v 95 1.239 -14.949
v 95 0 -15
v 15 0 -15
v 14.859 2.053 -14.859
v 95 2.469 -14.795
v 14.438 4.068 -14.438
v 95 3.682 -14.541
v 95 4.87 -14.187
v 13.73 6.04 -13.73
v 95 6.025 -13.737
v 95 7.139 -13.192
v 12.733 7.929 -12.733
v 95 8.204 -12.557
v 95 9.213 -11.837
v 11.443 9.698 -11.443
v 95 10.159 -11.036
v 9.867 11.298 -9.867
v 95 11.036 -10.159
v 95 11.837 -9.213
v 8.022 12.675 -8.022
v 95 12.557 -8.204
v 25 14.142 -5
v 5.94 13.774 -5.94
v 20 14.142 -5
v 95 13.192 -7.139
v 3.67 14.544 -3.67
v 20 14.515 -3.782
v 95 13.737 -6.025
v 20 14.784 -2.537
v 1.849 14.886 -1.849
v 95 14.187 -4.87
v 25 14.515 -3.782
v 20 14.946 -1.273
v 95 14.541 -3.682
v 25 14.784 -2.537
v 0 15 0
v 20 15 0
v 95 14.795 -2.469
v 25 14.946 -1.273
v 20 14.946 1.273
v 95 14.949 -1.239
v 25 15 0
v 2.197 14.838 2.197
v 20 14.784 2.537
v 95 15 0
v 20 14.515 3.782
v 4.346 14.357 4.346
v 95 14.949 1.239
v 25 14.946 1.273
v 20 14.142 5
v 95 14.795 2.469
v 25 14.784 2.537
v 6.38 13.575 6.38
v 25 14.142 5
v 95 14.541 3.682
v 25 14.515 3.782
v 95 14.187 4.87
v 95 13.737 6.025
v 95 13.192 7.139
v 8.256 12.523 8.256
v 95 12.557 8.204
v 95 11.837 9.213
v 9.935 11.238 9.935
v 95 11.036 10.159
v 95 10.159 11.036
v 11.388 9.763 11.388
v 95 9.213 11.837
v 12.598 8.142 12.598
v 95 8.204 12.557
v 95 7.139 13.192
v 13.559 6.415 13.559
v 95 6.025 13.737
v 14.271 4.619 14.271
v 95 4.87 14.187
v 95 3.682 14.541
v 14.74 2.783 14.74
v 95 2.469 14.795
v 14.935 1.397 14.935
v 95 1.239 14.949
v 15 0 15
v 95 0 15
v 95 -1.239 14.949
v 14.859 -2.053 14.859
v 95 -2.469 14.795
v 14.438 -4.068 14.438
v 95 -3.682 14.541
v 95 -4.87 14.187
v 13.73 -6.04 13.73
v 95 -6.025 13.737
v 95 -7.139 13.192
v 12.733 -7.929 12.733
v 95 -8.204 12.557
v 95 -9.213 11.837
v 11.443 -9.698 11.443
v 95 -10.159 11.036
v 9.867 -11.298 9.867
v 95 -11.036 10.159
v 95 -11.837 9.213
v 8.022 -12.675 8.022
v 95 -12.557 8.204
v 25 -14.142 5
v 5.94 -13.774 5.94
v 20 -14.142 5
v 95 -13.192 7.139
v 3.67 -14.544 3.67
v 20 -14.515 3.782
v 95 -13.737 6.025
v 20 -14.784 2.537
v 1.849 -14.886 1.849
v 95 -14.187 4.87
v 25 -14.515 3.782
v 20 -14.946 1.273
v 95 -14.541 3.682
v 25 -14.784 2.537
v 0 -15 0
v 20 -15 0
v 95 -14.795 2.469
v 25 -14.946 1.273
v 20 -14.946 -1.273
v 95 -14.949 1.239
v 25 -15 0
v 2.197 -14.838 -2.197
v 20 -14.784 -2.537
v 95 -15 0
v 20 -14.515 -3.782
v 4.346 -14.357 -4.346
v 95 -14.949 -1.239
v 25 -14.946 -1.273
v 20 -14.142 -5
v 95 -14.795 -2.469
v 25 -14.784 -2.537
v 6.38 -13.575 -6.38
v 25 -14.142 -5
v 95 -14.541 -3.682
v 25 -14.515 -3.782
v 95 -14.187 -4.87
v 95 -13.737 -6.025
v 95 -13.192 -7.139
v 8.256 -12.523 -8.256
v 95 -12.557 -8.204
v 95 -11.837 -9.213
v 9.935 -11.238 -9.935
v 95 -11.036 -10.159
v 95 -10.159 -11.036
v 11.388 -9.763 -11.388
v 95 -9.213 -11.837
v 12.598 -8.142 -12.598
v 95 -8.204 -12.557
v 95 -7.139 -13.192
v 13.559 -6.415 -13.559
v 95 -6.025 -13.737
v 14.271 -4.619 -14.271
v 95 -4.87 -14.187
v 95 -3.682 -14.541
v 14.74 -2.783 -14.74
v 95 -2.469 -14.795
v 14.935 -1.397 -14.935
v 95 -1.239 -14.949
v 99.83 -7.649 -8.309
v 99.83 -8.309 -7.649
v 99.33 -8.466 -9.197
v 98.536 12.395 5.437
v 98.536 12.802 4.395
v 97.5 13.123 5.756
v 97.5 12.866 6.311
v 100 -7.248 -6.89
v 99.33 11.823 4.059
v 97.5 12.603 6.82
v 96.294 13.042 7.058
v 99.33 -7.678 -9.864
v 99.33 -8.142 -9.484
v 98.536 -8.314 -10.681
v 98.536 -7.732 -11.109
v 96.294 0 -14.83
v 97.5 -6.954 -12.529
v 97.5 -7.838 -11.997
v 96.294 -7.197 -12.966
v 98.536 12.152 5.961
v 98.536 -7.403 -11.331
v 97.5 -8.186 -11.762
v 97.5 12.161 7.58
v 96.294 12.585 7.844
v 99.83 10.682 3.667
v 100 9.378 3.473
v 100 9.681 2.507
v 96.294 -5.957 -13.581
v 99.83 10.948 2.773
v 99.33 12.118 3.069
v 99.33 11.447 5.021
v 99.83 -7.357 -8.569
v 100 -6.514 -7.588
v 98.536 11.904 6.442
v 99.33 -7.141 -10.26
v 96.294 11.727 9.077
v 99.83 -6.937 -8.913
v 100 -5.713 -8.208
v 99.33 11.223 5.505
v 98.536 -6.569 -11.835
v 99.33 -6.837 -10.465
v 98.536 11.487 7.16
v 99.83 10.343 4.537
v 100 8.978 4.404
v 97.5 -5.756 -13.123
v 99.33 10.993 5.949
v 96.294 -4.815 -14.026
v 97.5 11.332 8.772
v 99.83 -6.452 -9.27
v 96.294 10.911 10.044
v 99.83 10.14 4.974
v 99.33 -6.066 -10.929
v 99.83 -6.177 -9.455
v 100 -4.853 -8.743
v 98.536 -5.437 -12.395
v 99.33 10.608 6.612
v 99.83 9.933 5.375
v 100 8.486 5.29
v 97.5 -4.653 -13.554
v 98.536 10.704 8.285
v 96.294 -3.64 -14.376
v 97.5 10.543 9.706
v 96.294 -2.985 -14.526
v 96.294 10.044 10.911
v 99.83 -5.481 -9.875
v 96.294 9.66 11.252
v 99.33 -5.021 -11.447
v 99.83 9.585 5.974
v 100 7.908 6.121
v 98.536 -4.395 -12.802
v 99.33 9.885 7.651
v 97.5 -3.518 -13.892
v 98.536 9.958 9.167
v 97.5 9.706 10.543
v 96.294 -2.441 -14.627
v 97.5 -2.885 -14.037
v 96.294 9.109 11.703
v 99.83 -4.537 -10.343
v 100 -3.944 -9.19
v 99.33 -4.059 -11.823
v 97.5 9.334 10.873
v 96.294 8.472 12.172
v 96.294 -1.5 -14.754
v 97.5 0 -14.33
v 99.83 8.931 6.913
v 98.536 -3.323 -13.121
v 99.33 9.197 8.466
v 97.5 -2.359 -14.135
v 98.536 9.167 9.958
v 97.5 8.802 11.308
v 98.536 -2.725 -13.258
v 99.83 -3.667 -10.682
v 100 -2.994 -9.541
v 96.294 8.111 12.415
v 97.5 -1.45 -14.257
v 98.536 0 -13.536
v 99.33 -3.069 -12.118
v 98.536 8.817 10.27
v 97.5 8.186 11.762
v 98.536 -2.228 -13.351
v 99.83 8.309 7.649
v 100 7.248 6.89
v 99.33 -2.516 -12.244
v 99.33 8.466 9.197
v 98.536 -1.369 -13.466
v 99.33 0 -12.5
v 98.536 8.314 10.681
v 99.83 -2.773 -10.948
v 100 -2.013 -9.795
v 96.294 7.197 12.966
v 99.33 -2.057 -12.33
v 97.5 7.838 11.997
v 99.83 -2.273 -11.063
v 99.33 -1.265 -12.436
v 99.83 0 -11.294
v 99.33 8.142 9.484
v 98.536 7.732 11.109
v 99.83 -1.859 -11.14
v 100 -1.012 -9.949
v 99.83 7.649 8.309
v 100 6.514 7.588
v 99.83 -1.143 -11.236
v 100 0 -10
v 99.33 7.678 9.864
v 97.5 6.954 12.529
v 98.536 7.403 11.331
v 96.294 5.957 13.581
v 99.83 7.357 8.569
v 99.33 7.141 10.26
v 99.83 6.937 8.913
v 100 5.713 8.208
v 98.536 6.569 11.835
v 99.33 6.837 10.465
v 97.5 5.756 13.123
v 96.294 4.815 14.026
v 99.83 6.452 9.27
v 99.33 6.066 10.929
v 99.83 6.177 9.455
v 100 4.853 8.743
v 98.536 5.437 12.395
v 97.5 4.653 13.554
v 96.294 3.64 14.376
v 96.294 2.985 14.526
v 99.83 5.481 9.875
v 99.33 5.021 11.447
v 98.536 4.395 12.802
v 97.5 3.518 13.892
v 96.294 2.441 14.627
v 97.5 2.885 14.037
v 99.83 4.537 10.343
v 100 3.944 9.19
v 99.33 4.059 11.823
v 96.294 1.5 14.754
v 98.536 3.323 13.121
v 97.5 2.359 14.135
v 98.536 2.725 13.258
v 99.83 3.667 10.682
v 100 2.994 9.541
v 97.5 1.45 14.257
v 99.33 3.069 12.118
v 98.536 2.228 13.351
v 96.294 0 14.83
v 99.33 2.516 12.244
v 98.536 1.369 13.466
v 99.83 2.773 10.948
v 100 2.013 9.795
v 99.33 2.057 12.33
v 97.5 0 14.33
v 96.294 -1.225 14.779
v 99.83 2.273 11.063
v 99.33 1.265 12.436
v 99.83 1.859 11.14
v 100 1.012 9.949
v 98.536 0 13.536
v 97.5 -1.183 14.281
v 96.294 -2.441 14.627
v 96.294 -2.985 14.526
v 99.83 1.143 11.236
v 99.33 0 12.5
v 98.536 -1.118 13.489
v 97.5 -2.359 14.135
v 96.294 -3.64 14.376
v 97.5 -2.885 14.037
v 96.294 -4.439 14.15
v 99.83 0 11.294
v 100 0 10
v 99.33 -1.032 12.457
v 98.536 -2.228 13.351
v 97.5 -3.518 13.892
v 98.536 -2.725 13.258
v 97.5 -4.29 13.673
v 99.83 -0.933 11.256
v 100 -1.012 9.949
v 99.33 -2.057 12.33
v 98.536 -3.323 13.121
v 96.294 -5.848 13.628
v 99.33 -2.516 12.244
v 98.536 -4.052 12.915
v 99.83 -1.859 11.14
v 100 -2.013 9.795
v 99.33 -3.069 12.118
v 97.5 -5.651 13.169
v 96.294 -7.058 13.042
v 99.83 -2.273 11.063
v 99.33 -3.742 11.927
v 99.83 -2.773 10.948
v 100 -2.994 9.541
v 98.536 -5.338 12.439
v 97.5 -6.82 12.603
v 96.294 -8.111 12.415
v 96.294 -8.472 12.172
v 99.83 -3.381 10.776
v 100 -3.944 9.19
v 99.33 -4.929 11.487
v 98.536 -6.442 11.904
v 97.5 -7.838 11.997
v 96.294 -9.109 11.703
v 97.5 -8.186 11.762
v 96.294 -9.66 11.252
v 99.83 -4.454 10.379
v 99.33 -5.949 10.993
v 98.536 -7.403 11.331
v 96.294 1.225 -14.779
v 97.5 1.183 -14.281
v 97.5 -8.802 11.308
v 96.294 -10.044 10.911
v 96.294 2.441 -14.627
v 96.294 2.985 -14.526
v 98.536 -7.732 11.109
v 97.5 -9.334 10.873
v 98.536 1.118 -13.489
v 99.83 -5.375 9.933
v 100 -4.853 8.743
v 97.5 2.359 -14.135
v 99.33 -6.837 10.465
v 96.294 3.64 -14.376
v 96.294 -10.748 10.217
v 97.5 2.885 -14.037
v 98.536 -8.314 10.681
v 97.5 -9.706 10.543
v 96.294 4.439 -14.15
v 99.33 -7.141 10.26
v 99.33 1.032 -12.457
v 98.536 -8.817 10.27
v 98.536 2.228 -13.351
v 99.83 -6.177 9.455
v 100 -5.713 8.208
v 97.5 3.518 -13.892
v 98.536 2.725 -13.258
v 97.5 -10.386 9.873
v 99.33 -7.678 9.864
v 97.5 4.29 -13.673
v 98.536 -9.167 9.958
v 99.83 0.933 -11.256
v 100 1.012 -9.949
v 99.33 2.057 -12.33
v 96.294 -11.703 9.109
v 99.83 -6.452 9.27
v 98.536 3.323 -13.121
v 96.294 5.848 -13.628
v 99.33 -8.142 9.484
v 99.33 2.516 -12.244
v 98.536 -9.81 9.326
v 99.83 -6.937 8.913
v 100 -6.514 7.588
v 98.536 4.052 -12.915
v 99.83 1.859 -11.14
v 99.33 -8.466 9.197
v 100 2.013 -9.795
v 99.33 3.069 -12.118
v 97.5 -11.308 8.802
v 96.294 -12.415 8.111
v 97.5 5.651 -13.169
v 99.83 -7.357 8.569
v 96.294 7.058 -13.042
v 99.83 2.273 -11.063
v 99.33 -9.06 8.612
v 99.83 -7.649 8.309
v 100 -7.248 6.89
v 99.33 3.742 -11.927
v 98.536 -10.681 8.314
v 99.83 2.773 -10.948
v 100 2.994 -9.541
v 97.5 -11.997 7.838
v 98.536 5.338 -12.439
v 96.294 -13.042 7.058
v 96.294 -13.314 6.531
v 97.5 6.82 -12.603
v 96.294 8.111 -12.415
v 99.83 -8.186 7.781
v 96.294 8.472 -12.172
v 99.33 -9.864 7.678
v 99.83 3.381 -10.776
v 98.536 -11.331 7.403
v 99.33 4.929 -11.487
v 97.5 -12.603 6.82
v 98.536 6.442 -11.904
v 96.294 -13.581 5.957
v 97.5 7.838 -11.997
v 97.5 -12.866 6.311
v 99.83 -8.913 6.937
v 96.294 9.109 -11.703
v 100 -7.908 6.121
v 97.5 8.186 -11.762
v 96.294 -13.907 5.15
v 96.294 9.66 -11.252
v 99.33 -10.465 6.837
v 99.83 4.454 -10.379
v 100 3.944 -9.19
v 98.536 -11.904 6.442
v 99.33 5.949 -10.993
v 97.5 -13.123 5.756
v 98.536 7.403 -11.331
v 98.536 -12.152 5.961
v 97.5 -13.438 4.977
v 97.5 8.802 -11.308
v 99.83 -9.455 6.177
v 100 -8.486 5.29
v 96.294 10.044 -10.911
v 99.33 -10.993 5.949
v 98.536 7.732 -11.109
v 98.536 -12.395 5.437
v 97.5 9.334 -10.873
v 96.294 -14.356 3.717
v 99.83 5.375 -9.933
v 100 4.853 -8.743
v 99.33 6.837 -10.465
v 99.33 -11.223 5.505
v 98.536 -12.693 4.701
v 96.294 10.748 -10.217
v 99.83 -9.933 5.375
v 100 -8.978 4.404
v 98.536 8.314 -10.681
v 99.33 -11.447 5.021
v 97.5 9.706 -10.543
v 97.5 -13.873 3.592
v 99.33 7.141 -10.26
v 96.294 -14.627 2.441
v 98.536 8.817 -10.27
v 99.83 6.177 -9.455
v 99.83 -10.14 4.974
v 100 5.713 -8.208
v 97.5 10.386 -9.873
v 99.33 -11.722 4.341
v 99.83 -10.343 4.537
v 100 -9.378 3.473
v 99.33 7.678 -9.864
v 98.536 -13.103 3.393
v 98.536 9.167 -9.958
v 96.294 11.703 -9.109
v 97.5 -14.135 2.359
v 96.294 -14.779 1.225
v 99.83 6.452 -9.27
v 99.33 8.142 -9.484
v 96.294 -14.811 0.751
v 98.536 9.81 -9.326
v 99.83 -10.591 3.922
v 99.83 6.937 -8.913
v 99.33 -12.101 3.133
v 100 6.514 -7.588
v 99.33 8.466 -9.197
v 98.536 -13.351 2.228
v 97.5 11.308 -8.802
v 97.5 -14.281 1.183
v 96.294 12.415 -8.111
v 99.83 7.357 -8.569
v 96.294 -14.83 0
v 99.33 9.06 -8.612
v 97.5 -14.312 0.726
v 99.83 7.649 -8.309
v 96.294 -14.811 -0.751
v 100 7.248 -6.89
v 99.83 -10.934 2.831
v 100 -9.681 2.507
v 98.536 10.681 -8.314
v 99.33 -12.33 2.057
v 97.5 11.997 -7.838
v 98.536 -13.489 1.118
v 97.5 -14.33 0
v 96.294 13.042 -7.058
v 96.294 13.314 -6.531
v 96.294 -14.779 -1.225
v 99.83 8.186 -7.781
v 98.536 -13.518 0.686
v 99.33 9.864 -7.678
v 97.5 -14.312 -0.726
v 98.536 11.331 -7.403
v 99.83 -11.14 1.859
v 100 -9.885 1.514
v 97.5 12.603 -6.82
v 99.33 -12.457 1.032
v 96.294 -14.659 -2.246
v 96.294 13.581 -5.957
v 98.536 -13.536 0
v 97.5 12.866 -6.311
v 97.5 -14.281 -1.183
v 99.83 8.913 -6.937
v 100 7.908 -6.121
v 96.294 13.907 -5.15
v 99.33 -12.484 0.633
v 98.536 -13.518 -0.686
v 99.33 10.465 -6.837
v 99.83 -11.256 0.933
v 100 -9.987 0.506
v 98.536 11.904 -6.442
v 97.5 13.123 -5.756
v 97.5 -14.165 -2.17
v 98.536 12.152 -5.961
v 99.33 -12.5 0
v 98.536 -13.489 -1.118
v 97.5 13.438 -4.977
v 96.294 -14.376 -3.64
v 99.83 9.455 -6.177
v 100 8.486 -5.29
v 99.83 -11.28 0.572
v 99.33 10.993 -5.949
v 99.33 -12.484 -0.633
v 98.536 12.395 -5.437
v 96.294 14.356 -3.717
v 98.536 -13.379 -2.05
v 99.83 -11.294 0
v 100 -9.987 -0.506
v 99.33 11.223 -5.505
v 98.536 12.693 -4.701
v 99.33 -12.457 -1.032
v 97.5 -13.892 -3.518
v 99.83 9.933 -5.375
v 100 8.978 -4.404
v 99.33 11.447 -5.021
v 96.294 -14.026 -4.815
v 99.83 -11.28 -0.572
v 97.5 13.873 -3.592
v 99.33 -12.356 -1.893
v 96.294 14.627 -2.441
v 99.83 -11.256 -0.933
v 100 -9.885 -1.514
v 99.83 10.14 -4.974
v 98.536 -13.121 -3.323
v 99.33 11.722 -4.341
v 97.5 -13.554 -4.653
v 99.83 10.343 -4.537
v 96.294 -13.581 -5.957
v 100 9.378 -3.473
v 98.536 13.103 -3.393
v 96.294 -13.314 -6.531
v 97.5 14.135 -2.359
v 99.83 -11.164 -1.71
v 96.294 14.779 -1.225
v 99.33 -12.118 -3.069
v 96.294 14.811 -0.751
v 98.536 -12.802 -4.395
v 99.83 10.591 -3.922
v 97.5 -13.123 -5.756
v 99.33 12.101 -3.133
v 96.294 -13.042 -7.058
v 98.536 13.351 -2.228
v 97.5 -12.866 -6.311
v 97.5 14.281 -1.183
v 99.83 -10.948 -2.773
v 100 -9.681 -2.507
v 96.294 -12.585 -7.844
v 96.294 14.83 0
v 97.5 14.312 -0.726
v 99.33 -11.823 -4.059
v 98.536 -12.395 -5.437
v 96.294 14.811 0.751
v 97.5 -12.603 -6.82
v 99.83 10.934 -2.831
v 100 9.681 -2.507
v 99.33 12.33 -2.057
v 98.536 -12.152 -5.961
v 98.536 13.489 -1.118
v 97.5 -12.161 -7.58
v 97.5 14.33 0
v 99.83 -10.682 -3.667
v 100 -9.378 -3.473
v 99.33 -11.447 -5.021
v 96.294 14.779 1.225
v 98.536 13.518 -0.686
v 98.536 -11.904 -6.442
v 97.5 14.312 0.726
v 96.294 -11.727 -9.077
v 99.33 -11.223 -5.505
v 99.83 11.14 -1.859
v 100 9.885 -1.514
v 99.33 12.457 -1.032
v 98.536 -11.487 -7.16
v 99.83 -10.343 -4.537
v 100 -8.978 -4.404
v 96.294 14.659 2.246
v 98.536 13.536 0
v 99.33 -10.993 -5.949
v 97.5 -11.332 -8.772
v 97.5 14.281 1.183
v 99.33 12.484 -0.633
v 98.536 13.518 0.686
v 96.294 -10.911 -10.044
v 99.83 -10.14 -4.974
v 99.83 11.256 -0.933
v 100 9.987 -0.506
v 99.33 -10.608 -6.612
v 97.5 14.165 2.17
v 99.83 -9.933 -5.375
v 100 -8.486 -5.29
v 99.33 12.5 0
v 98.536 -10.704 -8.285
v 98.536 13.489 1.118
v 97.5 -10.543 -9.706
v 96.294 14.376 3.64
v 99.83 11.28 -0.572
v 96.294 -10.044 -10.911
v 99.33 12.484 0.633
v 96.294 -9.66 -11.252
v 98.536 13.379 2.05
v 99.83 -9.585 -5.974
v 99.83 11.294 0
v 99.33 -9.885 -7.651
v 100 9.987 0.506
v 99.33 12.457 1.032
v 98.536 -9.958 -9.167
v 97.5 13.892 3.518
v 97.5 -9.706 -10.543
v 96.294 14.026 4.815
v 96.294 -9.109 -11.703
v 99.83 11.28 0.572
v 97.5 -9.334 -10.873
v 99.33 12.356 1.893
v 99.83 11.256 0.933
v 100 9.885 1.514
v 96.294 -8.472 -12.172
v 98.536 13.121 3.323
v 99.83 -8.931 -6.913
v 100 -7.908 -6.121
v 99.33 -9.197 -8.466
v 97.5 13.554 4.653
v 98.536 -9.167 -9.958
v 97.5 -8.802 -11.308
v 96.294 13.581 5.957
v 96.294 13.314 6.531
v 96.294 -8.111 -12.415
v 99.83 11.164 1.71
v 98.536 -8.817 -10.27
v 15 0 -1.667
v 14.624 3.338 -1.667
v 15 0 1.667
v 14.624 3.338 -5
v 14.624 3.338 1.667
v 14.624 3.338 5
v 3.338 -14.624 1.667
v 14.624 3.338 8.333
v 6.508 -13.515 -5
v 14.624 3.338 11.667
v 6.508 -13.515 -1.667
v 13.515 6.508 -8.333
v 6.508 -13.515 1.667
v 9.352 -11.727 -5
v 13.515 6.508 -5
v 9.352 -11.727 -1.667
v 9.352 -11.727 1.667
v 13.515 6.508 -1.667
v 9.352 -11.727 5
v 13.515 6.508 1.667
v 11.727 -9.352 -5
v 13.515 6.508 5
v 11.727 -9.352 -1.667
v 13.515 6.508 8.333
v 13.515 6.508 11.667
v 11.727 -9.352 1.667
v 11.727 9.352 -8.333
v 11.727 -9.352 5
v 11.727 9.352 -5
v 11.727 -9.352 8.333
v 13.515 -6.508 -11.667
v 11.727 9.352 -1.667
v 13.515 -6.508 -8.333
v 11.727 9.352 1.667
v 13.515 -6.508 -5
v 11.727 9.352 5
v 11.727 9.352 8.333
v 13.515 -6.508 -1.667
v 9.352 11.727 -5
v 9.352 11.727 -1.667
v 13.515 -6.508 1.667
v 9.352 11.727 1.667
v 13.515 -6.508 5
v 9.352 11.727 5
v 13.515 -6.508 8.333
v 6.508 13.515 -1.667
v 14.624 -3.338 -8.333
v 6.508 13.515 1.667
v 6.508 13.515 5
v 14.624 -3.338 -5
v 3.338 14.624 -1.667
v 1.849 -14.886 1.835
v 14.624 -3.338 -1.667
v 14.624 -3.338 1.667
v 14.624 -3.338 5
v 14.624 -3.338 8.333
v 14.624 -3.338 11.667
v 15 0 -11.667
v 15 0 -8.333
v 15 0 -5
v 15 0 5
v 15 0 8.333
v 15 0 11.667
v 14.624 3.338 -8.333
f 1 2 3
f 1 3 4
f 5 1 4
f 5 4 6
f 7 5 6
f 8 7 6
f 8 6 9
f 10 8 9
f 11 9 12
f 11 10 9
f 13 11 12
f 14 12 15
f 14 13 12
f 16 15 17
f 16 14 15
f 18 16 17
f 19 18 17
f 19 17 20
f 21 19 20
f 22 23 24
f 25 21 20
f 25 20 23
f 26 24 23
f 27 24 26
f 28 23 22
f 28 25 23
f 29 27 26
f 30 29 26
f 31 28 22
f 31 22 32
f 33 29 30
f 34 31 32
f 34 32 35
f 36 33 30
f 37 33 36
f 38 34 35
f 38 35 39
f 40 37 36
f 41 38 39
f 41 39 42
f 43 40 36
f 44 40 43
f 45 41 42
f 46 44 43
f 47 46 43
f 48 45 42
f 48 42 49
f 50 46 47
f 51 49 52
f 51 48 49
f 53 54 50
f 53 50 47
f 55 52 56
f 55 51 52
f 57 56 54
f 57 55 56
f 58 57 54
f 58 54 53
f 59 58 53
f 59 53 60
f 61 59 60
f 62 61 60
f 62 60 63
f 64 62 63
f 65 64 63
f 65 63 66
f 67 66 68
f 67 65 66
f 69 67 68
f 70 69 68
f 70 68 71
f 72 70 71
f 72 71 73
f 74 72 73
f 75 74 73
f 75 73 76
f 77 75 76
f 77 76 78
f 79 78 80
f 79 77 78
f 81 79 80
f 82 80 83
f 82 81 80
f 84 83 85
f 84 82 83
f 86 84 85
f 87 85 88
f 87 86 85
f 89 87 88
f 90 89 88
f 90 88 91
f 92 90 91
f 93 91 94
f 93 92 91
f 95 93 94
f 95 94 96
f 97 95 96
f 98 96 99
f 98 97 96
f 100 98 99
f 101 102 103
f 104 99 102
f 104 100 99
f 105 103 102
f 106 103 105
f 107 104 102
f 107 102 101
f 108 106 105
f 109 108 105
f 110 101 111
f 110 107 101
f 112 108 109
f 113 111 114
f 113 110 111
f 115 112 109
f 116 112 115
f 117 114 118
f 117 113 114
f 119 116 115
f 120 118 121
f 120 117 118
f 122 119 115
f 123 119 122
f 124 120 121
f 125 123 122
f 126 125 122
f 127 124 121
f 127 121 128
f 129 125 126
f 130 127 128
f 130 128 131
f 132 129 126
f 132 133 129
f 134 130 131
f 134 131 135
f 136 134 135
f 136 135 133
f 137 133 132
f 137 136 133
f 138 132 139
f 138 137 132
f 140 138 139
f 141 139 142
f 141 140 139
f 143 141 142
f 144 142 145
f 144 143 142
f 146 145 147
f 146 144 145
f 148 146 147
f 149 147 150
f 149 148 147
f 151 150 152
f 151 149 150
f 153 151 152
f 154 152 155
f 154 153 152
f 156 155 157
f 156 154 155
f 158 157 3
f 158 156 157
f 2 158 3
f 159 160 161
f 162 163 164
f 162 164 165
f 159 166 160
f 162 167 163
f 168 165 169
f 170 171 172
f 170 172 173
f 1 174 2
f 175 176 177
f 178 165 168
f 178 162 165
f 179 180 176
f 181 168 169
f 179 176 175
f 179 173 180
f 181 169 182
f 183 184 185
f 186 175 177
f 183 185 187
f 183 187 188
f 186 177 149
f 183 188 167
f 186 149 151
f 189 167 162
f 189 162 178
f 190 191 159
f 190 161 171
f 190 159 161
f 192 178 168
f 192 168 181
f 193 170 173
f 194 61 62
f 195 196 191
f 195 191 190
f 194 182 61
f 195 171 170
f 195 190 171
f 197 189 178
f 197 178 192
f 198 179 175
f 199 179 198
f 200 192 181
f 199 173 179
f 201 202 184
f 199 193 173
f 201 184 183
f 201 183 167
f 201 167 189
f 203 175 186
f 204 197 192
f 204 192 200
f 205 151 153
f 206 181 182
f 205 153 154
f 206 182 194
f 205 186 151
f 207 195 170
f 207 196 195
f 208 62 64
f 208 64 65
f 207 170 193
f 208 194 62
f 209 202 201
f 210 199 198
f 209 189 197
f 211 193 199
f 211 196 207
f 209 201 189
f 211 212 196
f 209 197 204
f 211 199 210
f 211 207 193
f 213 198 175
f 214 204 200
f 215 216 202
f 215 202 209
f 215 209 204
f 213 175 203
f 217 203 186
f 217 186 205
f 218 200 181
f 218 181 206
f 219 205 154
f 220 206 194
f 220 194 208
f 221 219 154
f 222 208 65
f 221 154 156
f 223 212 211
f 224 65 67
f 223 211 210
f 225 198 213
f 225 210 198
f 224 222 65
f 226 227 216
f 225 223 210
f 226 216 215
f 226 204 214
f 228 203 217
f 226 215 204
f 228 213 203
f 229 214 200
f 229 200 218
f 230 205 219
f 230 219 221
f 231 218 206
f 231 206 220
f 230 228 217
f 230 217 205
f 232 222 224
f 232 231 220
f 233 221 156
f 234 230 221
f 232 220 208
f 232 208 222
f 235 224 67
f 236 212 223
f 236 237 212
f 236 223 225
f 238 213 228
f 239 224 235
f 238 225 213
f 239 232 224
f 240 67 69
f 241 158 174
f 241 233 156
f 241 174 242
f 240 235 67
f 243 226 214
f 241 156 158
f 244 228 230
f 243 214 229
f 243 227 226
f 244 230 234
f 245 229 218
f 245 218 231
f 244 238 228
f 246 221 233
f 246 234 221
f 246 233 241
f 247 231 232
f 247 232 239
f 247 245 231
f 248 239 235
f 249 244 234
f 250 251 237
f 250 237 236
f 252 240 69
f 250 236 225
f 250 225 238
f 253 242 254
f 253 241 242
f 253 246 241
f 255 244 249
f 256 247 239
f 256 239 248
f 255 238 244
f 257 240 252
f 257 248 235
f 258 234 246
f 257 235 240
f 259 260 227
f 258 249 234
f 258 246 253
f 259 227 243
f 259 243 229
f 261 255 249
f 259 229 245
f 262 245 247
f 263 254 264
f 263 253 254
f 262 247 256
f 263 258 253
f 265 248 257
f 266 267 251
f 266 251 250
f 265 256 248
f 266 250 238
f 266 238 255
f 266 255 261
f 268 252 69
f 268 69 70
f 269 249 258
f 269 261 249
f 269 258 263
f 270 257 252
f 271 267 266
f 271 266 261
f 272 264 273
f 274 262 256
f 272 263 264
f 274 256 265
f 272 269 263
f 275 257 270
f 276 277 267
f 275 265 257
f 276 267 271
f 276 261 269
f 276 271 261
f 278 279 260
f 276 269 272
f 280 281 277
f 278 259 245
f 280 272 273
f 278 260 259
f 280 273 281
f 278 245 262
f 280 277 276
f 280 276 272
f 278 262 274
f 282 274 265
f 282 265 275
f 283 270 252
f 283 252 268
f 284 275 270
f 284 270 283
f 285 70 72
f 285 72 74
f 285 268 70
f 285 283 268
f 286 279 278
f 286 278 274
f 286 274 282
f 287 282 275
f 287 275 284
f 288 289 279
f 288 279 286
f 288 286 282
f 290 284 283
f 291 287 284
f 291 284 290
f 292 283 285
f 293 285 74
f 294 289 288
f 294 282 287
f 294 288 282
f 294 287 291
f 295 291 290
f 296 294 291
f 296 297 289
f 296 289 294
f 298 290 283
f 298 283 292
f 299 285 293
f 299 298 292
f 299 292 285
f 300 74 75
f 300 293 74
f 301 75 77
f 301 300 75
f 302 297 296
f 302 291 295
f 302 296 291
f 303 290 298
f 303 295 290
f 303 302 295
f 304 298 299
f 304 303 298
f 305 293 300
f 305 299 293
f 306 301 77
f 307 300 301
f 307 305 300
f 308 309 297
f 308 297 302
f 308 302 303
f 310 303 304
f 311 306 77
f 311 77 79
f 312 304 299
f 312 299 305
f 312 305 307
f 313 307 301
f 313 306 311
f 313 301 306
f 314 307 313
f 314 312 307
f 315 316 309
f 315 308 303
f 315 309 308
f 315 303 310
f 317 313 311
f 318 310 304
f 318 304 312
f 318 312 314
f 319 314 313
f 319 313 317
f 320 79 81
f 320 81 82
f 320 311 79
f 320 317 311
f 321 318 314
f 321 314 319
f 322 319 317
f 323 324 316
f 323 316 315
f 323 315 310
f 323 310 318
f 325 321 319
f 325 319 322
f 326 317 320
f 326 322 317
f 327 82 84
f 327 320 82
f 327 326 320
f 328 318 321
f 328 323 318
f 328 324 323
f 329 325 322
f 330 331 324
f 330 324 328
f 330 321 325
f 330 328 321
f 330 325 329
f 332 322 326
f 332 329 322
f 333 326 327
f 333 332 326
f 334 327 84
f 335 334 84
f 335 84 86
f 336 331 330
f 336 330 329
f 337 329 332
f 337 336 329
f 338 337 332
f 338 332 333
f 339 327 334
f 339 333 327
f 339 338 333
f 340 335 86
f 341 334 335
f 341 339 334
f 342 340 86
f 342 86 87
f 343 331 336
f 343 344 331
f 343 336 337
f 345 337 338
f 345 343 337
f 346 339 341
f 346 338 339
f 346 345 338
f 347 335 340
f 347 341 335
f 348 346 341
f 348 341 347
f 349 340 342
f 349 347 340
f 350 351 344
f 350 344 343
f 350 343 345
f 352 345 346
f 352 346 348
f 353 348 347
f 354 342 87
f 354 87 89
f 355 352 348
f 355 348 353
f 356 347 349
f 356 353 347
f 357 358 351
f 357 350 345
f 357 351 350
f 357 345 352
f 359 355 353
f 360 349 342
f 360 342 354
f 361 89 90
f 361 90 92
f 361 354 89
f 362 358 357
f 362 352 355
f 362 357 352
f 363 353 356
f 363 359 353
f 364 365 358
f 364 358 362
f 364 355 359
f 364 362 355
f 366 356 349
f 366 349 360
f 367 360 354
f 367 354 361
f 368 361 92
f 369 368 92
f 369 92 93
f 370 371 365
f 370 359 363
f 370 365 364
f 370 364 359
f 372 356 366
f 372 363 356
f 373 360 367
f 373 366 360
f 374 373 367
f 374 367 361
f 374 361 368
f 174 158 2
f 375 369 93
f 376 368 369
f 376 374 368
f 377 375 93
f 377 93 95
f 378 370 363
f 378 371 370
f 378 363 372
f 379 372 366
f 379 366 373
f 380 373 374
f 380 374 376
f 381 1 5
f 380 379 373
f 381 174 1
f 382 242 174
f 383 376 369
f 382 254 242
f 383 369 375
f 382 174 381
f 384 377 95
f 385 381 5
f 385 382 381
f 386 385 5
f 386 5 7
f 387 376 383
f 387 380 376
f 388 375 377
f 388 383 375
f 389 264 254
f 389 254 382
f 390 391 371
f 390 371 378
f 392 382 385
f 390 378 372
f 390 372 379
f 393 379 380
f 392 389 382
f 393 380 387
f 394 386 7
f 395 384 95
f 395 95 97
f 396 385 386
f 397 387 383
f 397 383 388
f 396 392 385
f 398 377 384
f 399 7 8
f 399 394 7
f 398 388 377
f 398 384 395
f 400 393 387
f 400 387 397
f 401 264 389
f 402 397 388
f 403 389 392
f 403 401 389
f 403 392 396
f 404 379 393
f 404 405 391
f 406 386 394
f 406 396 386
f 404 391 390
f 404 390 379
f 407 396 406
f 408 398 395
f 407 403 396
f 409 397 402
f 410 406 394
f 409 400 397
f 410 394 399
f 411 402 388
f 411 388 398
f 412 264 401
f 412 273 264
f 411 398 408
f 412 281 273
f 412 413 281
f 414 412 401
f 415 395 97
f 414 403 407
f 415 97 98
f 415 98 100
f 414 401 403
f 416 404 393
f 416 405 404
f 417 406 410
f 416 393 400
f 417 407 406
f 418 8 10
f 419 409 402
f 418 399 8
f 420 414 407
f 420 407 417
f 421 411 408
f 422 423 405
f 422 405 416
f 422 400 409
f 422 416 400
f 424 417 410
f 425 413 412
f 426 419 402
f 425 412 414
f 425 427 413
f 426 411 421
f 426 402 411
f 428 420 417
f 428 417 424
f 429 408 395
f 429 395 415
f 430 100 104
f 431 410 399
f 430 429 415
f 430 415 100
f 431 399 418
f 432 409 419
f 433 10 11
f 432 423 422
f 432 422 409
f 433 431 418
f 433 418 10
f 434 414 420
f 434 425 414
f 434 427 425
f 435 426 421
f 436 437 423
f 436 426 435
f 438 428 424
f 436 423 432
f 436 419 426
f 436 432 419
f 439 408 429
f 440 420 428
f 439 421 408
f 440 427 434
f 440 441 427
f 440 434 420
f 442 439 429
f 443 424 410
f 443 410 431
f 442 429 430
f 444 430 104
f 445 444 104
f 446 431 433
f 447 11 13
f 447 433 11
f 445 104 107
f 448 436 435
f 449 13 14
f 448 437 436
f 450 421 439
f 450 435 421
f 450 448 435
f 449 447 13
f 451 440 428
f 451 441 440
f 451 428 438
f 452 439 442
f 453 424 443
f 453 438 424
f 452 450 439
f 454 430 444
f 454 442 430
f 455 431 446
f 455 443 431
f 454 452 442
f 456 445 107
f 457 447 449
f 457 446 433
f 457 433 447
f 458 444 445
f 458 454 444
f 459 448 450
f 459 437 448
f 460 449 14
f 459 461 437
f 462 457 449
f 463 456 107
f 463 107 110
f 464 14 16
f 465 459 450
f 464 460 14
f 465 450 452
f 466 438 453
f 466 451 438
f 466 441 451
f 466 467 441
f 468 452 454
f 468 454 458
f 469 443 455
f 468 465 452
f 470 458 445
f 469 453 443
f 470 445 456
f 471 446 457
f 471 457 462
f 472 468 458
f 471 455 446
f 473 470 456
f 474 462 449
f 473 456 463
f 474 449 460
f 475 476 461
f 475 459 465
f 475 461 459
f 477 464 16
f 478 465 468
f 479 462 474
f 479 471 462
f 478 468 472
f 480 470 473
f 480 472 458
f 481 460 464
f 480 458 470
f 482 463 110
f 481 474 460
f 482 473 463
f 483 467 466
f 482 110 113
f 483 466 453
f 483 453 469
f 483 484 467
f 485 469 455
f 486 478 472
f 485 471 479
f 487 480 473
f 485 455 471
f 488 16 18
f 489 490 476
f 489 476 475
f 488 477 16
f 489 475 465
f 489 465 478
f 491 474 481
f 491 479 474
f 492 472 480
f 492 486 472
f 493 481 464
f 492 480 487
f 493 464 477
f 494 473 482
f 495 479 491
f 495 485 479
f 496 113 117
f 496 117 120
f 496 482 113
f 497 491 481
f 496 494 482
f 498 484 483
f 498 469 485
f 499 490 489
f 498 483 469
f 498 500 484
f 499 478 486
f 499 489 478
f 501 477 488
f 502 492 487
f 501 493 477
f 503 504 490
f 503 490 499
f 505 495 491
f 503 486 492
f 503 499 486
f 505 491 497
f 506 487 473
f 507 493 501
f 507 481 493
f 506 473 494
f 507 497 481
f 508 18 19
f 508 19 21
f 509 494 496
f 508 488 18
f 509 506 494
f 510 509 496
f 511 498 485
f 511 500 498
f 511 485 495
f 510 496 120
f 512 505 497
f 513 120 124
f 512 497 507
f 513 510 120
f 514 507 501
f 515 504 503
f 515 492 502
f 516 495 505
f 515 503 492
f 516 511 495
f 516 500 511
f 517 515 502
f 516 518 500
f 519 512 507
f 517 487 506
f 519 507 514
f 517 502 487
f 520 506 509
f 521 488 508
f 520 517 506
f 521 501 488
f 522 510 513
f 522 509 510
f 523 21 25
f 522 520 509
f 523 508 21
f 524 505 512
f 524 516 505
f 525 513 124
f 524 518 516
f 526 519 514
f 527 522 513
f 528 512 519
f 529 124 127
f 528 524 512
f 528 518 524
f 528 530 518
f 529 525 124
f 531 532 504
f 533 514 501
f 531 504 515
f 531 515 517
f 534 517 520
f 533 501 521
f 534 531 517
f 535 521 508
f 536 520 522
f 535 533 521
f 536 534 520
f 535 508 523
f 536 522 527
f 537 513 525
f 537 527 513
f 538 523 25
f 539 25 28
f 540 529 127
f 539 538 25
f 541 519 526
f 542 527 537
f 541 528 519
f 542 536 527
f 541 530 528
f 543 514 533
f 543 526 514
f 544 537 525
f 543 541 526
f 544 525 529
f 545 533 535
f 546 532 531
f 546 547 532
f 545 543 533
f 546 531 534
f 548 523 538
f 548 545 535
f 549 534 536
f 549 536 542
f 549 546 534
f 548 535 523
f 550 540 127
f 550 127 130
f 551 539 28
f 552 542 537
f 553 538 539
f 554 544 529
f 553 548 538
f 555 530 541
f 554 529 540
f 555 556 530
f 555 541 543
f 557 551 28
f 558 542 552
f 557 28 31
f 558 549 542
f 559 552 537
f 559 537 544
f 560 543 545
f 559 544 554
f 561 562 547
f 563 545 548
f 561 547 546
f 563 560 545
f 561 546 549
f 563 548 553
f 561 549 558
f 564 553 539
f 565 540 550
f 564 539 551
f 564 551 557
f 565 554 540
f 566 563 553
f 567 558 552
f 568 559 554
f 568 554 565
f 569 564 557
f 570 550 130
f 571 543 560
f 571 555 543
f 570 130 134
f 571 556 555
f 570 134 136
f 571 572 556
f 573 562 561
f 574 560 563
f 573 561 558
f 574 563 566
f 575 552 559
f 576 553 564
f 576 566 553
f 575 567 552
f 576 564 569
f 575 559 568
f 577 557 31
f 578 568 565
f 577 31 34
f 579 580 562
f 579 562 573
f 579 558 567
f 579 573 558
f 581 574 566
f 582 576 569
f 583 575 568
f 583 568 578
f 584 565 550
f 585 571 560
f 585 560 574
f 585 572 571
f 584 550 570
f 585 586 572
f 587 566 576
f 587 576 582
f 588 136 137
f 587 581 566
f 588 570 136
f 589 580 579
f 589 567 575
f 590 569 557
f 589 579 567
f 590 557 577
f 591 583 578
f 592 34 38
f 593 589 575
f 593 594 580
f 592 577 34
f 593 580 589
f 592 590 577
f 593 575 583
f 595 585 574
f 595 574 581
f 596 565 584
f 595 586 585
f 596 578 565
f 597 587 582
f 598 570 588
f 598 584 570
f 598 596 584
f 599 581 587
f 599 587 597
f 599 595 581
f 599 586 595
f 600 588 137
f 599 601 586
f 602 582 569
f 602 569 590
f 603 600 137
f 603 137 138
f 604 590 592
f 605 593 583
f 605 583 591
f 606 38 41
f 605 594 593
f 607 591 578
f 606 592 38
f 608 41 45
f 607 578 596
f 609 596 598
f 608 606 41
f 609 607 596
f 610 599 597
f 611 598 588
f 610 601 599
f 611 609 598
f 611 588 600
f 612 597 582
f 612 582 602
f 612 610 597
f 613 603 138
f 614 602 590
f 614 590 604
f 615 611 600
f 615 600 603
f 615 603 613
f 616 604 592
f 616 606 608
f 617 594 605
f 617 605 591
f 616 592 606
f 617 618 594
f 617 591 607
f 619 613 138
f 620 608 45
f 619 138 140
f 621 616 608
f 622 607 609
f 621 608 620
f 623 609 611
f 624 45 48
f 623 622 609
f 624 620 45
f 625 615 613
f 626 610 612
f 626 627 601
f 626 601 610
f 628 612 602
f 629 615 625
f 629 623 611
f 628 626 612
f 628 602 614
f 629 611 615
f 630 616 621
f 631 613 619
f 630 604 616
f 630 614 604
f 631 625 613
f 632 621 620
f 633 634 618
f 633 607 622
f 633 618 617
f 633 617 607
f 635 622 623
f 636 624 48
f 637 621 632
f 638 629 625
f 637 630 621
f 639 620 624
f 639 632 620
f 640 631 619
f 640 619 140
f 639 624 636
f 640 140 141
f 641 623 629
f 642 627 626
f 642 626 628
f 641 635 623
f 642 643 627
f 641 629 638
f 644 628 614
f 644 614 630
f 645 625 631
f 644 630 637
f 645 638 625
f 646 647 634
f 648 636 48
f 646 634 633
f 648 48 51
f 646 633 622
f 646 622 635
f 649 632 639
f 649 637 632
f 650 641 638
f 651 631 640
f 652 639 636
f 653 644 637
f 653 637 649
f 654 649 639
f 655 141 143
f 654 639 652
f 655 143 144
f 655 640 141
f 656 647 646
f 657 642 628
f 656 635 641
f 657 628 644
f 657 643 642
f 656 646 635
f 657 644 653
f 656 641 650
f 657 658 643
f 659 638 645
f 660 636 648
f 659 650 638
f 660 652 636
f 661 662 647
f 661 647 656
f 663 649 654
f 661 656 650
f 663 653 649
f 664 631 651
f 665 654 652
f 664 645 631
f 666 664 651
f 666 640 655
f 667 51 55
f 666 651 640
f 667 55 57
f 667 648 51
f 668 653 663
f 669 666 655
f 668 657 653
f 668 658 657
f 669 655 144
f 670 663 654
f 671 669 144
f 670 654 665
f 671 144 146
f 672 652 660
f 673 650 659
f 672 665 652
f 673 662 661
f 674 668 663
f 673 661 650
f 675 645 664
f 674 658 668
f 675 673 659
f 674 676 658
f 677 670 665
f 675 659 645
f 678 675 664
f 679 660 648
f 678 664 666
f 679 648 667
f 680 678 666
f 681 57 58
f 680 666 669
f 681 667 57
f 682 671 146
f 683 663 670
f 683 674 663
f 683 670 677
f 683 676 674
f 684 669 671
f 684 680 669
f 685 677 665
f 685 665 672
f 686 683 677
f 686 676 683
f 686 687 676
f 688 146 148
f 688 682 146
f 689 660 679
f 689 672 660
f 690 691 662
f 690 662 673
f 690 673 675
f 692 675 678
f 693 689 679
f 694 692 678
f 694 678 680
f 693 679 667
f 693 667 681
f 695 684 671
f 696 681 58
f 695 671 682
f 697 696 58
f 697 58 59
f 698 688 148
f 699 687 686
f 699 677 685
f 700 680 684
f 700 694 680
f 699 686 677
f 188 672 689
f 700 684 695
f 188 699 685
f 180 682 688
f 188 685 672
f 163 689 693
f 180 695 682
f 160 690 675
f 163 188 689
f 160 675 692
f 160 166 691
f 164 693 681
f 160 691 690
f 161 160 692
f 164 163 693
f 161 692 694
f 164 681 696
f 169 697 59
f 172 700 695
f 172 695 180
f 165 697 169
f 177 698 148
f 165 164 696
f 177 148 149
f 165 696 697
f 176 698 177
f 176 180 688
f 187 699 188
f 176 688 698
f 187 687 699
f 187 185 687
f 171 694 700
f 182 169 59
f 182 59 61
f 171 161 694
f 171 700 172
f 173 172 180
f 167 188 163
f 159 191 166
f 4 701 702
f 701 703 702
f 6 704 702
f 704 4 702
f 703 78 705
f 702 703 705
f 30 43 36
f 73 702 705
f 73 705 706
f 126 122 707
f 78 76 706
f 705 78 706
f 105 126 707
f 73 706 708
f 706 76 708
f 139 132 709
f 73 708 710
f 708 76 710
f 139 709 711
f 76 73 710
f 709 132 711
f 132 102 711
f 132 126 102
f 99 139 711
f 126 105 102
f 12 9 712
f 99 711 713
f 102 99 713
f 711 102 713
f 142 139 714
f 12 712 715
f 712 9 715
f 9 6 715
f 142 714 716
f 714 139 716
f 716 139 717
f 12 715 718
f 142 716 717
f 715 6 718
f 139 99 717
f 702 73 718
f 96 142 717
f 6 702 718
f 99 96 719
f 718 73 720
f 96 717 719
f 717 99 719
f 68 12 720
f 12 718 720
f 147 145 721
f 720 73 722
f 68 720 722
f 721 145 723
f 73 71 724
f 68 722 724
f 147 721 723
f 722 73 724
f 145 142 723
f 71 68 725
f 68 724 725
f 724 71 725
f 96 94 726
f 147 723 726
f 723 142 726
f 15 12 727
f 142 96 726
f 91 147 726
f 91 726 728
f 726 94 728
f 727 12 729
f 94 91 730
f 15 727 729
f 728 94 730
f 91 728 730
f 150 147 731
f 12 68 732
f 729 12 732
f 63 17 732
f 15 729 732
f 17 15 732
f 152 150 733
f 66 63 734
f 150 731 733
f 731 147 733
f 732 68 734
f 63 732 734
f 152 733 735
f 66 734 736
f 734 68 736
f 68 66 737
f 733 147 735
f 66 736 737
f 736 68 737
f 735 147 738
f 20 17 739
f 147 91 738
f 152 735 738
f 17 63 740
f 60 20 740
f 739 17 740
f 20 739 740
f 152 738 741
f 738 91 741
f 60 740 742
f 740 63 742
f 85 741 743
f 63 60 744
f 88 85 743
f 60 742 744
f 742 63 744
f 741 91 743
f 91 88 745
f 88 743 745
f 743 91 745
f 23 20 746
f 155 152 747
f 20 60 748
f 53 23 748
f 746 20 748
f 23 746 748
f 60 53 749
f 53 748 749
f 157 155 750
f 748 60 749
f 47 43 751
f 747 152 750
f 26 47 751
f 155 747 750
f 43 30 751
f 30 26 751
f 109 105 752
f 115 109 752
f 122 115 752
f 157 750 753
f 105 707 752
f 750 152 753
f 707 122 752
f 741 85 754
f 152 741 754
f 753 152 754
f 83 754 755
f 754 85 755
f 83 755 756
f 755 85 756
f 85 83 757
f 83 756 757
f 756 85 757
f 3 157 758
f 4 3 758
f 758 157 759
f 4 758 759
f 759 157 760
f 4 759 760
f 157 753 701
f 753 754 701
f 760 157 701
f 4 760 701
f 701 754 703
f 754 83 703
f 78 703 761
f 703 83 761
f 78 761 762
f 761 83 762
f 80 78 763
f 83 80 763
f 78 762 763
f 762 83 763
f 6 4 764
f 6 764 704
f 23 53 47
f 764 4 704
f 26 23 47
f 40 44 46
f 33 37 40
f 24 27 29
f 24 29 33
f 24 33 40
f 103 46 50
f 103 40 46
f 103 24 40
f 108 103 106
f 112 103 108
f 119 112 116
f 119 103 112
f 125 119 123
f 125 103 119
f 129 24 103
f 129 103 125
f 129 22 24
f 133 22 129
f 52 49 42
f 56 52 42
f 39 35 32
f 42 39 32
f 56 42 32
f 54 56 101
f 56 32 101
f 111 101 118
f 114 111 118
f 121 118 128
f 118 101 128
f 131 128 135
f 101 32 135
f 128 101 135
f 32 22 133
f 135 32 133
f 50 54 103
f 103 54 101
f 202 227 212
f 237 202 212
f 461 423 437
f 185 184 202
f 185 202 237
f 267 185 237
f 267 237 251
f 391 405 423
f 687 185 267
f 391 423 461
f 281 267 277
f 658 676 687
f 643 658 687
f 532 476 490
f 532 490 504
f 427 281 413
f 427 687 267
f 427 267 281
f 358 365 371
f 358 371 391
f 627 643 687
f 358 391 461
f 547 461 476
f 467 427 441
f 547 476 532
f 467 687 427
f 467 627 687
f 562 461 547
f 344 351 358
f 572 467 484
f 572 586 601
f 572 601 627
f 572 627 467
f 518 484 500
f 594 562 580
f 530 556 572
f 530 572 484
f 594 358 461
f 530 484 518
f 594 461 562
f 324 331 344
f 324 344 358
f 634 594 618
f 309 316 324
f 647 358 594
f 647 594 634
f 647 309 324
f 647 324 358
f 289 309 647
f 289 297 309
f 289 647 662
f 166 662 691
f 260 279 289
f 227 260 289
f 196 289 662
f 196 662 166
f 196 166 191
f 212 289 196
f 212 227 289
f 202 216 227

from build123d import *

# Parameters (mm, degrees)
BOX_W                = 5
BOX_H                = 10
BOX_DEPTH            = 48
BOX_ROLL_ANGLE       = 90
CYLINDER001_R        = 15
CYLINDER001_DEPTH    = 100
CYLINDER_R           = 15
CYLINDER_DEPTH       = 100
CYLINDER_PITCH_ANGLE = 90
FILLET_R             = 5


with BuildPart() as cubo:
    # Box → Box (new body)
    with BuildSketch(Plane.XY):
        with Locations((2.5, 5)):
            Rectangle(BOX_W, BOX_H)
    extrude(amount=BOX_DEPTH)


with BuildPart() as cubo_1:
    # Box roll: moved
    add(cubo.part.rotate(Axis((0, 0, 0), (1, 0, 0)), BOX_ROLL_ANGLE))


with BuildPart() as cubo_2:
    # Box placement: moved
    add(cubo_1.part.moved(Location((20, 27, -5))))


with BuildPart() as cilindro001:
    # Cylinder001 → Cylinder001 (new body)
    with BuildSketch(Plane.XY.offset(-44)):
        Circle(CYLINDER001_R)
    extrude(amount=CYLINDER001_DEPTH)


with BuildPart() as fillet_body:
    # Cylinder → Cylinder (new body)
    with BuildSketch(Plane.XY):
        Circle(CYLINDER_R)
    extrude(amount=CYLINDER_DEPTH)


with BuildPart() as fillet_body_1:
    # Cylinder pitch: moved
    add(fillet_body.part.rotate(Axis((0, 0, 0), (0, 1, 0)), CYLINDER_PITCH_ANGLE))


with BuildPart() as fillet_body_2:
    # Cylinder placement: moved
    add(fillet_body_1.part)

    # Cut: cut Cilindro001
    add(cilindro001.part, mode=Mode.SUBTRACT)

    # Cut001: cut Cubo
    add(cubo_2.part, mode=Mode.SUBTRACT)

    # Fillet
    fillet_edges = [fillet_body_2.edges().sort_by_distance(p)[0] for p in [
        (100, 0, 15),
    ]]
    fillet(fillet_edges, radius=FILLET_R)


solid = fillet_body_2.part
